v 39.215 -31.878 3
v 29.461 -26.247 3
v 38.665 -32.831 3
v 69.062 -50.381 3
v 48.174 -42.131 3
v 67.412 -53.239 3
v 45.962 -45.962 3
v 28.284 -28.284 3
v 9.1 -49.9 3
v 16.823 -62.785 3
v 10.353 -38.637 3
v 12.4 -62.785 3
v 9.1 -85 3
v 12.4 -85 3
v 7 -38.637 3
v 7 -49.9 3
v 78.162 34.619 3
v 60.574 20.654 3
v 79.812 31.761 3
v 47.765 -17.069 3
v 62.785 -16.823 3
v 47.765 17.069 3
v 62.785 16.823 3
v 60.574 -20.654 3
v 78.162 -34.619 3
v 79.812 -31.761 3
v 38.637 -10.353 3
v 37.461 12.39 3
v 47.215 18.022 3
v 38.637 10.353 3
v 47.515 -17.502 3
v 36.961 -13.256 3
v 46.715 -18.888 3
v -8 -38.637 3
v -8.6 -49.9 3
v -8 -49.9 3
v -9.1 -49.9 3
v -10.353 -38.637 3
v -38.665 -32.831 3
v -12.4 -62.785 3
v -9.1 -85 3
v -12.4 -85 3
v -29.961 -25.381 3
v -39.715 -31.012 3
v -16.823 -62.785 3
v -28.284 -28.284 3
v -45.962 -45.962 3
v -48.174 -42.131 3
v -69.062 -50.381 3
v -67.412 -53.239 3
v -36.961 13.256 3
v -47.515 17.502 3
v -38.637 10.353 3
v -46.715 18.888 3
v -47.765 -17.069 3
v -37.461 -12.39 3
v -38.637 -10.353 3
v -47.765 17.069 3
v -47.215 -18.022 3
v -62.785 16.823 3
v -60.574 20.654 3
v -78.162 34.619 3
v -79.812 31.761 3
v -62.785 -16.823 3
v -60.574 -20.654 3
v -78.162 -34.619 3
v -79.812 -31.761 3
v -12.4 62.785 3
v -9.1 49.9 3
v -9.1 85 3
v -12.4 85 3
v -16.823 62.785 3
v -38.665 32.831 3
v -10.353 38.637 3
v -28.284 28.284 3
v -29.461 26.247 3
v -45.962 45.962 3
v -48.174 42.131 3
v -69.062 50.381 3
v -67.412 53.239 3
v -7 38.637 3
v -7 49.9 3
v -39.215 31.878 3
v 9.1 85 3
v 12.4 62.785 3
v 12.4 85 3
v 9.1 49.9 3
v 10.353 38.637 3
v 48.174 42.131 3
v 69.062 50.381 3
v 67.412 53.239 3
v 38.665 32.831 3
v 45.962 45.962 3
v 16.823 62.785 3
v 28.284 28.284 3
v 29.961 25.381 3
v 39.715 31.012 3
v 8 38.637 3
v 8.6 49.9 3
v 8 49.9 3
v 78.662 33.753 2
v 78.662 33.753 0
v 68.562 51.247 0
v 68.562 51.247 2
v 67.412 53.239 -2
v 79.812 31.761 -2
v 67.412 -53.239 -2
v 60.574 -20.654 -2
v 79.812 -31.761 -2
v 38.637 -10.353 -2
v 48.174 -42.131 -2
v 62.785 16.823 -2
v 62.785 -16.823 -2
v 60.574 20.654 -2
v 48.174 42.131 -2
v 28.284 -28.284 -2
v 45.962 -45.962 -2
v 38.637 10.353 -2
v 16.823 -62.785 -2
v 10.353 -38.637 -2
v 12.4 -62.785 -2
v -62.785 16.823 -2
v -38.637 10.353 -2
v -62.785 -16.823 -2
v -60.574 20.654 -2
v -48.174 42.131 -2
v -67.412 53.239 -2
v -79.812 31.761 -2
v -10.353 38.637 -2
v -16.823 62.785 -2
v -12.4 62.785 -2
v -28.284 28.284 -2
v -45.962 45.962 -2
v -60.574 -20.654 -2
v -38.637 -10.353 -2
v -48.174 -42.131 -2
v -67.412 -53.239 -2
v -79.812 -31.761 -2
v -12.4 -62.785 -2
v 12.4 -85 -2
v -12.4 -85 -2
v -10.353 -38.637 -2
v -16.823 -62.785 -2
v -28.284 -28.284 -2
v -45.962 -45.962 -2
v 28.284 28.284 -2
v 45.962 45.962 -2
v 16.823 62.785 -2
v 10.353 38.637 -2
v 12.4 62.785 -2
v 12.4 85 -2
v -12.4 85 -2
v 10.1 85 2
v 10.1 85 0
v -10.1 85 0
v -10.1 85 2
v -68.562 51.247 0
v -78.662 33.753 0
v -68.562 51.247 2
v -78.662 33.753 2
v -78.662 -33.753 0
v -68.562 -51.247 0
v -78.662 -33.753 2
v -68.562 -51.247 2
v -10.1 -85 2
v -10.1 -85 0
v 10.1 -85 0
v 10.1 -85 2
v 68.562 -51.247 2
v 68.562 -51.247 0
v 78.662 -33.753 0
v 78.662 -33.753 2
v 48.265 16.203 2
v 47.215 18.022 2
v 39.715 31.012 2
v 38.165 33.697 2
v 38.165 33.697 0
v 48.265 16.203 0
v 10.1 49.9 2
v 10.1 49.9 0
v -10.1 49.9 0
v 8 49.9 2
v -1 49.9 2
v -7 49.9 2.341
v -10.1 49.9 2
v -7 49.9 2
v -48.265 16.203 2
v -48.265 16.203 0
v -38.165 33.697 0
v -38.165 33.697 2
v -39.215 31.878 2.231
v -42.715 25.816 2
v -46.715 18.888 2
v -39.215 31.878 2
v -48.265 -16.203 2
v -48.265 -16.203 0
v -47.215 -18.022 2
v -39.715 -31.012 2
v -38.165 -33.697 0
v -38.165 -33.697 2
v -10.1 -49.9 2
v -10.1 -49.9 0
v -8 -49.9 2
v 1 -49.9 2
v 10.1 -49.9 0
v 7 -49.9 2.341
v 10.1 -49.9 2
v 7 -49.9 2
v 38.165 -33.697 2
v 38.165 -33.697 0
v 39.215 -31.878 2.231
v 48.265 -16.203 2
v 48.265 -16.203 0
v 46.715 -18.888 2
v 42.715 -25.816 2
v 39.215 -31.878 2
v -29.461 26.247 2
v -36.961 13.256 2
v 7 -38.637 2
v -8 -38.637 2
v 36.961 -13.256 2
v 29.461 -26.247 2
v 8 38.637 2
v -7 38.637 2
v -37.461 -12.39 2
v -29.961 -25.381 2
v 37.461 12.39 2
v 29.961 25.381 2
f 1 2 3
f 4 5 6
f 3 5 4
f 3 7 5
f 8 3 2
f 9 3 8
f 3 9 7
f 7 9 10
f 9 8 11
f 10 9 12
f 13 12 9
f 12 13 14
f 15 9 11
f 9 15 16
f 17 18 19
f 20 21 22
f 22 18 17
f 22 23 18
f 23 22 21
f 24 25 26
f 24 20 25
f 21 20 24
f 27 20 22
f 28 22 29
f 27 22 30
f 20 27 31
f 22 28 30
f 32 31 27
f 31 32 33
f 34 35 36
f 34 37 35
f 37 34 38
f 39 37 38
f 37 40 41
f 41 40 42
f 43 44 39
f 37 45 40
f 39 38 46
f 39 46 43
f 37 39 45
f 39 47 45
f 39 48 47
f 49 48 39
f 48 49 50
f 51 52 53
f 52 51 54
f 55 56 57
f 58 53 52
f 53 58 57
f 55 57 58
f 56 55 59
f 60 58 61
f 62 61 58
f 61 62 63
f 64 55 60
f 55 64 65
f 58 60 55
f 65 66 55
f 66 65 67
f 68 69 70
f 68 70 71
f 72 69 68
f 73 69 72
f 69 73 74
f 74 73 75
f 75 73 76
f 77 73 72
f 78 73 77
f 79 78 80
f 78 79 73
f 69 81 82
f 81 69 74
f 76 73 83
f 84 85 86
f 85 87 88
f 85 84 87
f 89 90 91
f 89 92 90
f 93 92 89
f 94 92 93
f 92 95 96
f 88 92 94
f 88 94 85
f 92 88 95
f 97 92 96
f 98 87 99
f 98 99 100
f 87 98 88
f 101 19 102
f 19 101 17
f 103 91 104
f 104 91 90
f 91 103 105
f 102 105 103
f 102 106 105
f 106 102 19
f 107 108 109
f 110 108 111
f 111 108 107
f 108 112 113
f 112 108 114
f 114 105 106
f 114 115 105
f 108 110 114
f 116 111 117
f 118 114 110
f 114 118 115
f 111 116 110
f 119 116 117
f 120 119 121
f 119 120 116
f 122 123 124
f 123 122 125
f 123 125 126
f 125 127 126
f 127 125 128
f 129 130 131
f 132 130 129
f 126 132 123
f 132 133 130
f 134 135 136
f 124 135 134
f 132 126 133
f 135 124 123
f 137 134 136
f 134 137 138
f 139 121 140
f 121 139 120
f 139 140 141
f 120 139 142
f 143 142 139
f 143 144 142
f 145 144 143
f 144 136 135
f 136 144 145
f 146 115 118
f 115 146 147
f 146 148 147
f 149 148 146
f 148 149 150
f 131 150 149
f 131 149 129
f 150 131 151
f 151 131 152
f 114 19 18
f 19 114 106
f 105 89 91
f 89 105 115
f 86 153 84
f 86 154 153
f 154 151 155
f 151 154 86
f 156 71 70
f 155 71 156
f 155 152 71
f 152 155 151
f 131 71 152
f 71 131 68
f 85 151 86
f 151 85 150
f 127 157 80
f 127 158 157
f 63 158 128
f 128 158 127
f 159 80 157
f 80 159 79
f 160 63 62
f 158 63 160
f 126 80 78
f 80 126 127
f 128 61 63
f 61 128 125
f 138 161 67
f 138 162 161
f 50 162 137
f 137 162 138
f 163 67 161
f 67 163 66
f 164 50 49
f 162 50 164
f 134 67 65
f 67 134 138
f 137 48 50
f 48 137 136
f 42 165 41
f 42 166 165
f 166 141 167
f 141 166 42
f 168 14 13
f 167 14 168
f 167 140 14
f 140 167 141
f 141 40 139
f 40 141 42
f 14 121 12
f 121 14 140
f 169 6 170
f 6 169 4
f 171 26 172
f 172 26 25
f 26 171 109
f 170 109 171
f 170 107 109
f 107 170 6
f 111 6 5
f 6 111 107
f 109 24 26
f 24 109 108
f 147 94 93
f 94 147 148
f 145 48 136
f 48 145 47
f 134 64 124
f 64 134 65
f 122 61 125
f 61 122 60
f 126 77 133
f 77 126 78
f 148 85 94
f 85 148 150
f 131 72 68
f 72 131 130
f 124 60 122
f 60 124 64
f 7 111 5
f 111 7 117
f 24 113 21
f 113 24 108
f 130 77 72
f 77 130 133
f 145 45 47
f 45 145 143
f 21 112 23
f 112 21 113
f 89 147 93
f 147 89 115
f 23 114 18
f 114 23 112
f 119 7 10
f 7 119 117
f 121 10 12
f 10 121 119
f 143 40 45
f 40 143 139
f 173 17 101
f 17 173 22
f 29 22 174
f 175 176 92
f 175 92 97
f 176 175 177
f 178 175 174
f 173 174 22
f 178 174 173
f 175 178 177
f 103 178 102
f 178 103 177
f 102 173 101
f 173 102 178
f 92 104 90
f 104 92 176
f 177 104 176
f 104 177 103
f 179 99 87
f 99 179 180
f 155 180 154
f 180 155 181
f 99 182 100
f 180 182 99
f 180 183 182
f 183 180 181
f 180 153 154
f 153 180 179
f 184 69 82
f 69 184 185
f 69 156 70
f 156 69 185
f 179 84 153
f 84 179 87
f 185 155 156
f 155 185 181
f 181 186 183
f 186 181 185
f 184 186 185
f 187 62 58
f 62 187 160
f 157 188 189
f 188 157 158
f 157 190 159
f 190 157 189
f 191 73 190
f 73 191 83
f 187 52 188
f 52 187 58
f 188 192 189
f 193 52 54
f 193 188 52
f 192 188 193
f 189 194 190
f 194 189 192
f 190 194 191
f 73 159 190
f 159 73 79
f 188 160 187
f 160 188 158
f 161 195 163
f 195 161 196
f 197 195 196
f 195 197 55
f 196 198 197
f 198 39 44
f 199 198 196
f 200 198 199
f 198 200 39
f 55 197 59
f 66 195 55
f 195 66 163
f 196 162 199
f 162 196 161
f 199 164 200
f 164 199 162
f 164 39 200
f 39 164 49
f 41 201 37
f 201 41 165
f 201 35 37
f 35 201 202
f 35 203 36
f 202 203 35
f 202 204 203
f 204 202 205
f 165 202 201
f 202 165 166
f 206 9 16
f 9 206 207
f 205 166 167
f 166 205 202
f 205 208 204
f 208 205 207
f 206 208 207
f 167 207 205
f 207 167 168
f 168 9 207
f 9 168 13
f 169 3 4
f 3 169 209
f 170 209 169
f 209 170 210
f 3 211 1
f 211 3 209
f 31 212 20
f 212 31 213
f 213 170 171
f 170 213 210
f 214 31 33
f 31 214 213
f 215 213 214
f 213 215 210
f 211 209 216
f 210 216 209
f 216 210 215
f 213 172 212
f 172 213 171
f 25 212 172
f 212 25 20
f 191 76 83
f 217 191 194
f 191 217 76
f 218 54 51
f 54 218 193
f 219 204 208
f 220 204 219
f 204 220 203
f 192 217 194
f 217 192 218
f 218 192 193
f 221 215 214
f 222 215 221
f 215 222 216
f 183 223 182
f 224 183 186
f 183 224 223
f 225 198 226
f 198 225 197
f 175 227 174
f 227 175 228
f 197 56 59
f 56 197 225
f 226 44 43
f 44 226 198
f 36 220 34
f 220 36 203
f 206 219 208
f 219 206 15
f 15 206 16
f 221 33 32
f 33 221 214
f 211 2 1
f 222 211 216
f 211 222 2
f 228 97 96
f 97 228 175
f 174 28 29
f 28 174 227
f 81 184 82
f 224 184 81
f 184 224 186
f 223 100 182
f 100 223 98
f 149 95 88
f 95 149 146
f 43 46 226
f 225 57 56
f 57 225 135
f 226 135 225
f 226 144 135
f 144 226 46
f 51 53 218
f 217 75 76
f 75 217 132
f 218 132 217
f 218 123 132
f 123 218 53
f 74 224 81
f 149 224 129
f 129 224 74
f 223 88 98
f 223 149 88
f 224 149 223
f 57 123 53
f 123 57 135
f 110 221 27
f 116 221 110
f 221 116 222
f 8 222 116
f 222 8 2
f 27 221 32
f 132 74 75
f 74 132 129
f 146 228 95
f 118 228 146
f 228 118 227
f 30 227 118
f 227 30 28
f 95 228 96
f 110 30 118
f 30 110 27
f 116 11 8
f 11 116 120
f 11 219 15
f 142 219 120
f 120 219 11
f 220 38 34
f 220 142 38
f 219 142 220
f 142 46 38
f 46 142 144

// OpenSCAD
w=20.2; // Al stripe width
t=2.0; // Al thickness
bt=2.0; // Bottom thickness
ww=2.3; // wall width
tt=1.0; // top overhang
ml=35; // section length

ofs=50;
dc=130;
dci=80;
// ofs=-w*sin(60);

module outer(l)
{
translate([0, -w/2-ww, -bt]) cube([l, w+ww*2, bt+t+tt]);
}

module inner(l, ofs)
{
translate([ofs,0,0]) hull()
{
  translate([-0.1, -w/2, 0]) cube([l+0.2, w, t]);
  translate([-0.1, -w/2+tt+1, 0]) cube([l+0.2, w-tt*2-2, t+tt+1]);
}
}

rotate([0,0,30])difference()
{
union()
{
translate([0,0,-bt])rotate([0,0,15])cylinder(h=5, d=dc, $fn=12);
for (i = [0 : 5]) rotate([0,0,60*i]) translate([ofs,0,0]) outer(ml);
}
for (i = [0 : 5]) rotate([0,0,60*i]) translate([0,0,0]) inner(ml, ofs);
translate([0,0,-bt-1])rotate([0,0,15])cylinder(h=5+2, d=dci, $fn=12);
for (i = [0 : 5]) rotate([0,0,60*i+30]) translate([-7,0,t]) cube([15, 100, tt+1]);
}
